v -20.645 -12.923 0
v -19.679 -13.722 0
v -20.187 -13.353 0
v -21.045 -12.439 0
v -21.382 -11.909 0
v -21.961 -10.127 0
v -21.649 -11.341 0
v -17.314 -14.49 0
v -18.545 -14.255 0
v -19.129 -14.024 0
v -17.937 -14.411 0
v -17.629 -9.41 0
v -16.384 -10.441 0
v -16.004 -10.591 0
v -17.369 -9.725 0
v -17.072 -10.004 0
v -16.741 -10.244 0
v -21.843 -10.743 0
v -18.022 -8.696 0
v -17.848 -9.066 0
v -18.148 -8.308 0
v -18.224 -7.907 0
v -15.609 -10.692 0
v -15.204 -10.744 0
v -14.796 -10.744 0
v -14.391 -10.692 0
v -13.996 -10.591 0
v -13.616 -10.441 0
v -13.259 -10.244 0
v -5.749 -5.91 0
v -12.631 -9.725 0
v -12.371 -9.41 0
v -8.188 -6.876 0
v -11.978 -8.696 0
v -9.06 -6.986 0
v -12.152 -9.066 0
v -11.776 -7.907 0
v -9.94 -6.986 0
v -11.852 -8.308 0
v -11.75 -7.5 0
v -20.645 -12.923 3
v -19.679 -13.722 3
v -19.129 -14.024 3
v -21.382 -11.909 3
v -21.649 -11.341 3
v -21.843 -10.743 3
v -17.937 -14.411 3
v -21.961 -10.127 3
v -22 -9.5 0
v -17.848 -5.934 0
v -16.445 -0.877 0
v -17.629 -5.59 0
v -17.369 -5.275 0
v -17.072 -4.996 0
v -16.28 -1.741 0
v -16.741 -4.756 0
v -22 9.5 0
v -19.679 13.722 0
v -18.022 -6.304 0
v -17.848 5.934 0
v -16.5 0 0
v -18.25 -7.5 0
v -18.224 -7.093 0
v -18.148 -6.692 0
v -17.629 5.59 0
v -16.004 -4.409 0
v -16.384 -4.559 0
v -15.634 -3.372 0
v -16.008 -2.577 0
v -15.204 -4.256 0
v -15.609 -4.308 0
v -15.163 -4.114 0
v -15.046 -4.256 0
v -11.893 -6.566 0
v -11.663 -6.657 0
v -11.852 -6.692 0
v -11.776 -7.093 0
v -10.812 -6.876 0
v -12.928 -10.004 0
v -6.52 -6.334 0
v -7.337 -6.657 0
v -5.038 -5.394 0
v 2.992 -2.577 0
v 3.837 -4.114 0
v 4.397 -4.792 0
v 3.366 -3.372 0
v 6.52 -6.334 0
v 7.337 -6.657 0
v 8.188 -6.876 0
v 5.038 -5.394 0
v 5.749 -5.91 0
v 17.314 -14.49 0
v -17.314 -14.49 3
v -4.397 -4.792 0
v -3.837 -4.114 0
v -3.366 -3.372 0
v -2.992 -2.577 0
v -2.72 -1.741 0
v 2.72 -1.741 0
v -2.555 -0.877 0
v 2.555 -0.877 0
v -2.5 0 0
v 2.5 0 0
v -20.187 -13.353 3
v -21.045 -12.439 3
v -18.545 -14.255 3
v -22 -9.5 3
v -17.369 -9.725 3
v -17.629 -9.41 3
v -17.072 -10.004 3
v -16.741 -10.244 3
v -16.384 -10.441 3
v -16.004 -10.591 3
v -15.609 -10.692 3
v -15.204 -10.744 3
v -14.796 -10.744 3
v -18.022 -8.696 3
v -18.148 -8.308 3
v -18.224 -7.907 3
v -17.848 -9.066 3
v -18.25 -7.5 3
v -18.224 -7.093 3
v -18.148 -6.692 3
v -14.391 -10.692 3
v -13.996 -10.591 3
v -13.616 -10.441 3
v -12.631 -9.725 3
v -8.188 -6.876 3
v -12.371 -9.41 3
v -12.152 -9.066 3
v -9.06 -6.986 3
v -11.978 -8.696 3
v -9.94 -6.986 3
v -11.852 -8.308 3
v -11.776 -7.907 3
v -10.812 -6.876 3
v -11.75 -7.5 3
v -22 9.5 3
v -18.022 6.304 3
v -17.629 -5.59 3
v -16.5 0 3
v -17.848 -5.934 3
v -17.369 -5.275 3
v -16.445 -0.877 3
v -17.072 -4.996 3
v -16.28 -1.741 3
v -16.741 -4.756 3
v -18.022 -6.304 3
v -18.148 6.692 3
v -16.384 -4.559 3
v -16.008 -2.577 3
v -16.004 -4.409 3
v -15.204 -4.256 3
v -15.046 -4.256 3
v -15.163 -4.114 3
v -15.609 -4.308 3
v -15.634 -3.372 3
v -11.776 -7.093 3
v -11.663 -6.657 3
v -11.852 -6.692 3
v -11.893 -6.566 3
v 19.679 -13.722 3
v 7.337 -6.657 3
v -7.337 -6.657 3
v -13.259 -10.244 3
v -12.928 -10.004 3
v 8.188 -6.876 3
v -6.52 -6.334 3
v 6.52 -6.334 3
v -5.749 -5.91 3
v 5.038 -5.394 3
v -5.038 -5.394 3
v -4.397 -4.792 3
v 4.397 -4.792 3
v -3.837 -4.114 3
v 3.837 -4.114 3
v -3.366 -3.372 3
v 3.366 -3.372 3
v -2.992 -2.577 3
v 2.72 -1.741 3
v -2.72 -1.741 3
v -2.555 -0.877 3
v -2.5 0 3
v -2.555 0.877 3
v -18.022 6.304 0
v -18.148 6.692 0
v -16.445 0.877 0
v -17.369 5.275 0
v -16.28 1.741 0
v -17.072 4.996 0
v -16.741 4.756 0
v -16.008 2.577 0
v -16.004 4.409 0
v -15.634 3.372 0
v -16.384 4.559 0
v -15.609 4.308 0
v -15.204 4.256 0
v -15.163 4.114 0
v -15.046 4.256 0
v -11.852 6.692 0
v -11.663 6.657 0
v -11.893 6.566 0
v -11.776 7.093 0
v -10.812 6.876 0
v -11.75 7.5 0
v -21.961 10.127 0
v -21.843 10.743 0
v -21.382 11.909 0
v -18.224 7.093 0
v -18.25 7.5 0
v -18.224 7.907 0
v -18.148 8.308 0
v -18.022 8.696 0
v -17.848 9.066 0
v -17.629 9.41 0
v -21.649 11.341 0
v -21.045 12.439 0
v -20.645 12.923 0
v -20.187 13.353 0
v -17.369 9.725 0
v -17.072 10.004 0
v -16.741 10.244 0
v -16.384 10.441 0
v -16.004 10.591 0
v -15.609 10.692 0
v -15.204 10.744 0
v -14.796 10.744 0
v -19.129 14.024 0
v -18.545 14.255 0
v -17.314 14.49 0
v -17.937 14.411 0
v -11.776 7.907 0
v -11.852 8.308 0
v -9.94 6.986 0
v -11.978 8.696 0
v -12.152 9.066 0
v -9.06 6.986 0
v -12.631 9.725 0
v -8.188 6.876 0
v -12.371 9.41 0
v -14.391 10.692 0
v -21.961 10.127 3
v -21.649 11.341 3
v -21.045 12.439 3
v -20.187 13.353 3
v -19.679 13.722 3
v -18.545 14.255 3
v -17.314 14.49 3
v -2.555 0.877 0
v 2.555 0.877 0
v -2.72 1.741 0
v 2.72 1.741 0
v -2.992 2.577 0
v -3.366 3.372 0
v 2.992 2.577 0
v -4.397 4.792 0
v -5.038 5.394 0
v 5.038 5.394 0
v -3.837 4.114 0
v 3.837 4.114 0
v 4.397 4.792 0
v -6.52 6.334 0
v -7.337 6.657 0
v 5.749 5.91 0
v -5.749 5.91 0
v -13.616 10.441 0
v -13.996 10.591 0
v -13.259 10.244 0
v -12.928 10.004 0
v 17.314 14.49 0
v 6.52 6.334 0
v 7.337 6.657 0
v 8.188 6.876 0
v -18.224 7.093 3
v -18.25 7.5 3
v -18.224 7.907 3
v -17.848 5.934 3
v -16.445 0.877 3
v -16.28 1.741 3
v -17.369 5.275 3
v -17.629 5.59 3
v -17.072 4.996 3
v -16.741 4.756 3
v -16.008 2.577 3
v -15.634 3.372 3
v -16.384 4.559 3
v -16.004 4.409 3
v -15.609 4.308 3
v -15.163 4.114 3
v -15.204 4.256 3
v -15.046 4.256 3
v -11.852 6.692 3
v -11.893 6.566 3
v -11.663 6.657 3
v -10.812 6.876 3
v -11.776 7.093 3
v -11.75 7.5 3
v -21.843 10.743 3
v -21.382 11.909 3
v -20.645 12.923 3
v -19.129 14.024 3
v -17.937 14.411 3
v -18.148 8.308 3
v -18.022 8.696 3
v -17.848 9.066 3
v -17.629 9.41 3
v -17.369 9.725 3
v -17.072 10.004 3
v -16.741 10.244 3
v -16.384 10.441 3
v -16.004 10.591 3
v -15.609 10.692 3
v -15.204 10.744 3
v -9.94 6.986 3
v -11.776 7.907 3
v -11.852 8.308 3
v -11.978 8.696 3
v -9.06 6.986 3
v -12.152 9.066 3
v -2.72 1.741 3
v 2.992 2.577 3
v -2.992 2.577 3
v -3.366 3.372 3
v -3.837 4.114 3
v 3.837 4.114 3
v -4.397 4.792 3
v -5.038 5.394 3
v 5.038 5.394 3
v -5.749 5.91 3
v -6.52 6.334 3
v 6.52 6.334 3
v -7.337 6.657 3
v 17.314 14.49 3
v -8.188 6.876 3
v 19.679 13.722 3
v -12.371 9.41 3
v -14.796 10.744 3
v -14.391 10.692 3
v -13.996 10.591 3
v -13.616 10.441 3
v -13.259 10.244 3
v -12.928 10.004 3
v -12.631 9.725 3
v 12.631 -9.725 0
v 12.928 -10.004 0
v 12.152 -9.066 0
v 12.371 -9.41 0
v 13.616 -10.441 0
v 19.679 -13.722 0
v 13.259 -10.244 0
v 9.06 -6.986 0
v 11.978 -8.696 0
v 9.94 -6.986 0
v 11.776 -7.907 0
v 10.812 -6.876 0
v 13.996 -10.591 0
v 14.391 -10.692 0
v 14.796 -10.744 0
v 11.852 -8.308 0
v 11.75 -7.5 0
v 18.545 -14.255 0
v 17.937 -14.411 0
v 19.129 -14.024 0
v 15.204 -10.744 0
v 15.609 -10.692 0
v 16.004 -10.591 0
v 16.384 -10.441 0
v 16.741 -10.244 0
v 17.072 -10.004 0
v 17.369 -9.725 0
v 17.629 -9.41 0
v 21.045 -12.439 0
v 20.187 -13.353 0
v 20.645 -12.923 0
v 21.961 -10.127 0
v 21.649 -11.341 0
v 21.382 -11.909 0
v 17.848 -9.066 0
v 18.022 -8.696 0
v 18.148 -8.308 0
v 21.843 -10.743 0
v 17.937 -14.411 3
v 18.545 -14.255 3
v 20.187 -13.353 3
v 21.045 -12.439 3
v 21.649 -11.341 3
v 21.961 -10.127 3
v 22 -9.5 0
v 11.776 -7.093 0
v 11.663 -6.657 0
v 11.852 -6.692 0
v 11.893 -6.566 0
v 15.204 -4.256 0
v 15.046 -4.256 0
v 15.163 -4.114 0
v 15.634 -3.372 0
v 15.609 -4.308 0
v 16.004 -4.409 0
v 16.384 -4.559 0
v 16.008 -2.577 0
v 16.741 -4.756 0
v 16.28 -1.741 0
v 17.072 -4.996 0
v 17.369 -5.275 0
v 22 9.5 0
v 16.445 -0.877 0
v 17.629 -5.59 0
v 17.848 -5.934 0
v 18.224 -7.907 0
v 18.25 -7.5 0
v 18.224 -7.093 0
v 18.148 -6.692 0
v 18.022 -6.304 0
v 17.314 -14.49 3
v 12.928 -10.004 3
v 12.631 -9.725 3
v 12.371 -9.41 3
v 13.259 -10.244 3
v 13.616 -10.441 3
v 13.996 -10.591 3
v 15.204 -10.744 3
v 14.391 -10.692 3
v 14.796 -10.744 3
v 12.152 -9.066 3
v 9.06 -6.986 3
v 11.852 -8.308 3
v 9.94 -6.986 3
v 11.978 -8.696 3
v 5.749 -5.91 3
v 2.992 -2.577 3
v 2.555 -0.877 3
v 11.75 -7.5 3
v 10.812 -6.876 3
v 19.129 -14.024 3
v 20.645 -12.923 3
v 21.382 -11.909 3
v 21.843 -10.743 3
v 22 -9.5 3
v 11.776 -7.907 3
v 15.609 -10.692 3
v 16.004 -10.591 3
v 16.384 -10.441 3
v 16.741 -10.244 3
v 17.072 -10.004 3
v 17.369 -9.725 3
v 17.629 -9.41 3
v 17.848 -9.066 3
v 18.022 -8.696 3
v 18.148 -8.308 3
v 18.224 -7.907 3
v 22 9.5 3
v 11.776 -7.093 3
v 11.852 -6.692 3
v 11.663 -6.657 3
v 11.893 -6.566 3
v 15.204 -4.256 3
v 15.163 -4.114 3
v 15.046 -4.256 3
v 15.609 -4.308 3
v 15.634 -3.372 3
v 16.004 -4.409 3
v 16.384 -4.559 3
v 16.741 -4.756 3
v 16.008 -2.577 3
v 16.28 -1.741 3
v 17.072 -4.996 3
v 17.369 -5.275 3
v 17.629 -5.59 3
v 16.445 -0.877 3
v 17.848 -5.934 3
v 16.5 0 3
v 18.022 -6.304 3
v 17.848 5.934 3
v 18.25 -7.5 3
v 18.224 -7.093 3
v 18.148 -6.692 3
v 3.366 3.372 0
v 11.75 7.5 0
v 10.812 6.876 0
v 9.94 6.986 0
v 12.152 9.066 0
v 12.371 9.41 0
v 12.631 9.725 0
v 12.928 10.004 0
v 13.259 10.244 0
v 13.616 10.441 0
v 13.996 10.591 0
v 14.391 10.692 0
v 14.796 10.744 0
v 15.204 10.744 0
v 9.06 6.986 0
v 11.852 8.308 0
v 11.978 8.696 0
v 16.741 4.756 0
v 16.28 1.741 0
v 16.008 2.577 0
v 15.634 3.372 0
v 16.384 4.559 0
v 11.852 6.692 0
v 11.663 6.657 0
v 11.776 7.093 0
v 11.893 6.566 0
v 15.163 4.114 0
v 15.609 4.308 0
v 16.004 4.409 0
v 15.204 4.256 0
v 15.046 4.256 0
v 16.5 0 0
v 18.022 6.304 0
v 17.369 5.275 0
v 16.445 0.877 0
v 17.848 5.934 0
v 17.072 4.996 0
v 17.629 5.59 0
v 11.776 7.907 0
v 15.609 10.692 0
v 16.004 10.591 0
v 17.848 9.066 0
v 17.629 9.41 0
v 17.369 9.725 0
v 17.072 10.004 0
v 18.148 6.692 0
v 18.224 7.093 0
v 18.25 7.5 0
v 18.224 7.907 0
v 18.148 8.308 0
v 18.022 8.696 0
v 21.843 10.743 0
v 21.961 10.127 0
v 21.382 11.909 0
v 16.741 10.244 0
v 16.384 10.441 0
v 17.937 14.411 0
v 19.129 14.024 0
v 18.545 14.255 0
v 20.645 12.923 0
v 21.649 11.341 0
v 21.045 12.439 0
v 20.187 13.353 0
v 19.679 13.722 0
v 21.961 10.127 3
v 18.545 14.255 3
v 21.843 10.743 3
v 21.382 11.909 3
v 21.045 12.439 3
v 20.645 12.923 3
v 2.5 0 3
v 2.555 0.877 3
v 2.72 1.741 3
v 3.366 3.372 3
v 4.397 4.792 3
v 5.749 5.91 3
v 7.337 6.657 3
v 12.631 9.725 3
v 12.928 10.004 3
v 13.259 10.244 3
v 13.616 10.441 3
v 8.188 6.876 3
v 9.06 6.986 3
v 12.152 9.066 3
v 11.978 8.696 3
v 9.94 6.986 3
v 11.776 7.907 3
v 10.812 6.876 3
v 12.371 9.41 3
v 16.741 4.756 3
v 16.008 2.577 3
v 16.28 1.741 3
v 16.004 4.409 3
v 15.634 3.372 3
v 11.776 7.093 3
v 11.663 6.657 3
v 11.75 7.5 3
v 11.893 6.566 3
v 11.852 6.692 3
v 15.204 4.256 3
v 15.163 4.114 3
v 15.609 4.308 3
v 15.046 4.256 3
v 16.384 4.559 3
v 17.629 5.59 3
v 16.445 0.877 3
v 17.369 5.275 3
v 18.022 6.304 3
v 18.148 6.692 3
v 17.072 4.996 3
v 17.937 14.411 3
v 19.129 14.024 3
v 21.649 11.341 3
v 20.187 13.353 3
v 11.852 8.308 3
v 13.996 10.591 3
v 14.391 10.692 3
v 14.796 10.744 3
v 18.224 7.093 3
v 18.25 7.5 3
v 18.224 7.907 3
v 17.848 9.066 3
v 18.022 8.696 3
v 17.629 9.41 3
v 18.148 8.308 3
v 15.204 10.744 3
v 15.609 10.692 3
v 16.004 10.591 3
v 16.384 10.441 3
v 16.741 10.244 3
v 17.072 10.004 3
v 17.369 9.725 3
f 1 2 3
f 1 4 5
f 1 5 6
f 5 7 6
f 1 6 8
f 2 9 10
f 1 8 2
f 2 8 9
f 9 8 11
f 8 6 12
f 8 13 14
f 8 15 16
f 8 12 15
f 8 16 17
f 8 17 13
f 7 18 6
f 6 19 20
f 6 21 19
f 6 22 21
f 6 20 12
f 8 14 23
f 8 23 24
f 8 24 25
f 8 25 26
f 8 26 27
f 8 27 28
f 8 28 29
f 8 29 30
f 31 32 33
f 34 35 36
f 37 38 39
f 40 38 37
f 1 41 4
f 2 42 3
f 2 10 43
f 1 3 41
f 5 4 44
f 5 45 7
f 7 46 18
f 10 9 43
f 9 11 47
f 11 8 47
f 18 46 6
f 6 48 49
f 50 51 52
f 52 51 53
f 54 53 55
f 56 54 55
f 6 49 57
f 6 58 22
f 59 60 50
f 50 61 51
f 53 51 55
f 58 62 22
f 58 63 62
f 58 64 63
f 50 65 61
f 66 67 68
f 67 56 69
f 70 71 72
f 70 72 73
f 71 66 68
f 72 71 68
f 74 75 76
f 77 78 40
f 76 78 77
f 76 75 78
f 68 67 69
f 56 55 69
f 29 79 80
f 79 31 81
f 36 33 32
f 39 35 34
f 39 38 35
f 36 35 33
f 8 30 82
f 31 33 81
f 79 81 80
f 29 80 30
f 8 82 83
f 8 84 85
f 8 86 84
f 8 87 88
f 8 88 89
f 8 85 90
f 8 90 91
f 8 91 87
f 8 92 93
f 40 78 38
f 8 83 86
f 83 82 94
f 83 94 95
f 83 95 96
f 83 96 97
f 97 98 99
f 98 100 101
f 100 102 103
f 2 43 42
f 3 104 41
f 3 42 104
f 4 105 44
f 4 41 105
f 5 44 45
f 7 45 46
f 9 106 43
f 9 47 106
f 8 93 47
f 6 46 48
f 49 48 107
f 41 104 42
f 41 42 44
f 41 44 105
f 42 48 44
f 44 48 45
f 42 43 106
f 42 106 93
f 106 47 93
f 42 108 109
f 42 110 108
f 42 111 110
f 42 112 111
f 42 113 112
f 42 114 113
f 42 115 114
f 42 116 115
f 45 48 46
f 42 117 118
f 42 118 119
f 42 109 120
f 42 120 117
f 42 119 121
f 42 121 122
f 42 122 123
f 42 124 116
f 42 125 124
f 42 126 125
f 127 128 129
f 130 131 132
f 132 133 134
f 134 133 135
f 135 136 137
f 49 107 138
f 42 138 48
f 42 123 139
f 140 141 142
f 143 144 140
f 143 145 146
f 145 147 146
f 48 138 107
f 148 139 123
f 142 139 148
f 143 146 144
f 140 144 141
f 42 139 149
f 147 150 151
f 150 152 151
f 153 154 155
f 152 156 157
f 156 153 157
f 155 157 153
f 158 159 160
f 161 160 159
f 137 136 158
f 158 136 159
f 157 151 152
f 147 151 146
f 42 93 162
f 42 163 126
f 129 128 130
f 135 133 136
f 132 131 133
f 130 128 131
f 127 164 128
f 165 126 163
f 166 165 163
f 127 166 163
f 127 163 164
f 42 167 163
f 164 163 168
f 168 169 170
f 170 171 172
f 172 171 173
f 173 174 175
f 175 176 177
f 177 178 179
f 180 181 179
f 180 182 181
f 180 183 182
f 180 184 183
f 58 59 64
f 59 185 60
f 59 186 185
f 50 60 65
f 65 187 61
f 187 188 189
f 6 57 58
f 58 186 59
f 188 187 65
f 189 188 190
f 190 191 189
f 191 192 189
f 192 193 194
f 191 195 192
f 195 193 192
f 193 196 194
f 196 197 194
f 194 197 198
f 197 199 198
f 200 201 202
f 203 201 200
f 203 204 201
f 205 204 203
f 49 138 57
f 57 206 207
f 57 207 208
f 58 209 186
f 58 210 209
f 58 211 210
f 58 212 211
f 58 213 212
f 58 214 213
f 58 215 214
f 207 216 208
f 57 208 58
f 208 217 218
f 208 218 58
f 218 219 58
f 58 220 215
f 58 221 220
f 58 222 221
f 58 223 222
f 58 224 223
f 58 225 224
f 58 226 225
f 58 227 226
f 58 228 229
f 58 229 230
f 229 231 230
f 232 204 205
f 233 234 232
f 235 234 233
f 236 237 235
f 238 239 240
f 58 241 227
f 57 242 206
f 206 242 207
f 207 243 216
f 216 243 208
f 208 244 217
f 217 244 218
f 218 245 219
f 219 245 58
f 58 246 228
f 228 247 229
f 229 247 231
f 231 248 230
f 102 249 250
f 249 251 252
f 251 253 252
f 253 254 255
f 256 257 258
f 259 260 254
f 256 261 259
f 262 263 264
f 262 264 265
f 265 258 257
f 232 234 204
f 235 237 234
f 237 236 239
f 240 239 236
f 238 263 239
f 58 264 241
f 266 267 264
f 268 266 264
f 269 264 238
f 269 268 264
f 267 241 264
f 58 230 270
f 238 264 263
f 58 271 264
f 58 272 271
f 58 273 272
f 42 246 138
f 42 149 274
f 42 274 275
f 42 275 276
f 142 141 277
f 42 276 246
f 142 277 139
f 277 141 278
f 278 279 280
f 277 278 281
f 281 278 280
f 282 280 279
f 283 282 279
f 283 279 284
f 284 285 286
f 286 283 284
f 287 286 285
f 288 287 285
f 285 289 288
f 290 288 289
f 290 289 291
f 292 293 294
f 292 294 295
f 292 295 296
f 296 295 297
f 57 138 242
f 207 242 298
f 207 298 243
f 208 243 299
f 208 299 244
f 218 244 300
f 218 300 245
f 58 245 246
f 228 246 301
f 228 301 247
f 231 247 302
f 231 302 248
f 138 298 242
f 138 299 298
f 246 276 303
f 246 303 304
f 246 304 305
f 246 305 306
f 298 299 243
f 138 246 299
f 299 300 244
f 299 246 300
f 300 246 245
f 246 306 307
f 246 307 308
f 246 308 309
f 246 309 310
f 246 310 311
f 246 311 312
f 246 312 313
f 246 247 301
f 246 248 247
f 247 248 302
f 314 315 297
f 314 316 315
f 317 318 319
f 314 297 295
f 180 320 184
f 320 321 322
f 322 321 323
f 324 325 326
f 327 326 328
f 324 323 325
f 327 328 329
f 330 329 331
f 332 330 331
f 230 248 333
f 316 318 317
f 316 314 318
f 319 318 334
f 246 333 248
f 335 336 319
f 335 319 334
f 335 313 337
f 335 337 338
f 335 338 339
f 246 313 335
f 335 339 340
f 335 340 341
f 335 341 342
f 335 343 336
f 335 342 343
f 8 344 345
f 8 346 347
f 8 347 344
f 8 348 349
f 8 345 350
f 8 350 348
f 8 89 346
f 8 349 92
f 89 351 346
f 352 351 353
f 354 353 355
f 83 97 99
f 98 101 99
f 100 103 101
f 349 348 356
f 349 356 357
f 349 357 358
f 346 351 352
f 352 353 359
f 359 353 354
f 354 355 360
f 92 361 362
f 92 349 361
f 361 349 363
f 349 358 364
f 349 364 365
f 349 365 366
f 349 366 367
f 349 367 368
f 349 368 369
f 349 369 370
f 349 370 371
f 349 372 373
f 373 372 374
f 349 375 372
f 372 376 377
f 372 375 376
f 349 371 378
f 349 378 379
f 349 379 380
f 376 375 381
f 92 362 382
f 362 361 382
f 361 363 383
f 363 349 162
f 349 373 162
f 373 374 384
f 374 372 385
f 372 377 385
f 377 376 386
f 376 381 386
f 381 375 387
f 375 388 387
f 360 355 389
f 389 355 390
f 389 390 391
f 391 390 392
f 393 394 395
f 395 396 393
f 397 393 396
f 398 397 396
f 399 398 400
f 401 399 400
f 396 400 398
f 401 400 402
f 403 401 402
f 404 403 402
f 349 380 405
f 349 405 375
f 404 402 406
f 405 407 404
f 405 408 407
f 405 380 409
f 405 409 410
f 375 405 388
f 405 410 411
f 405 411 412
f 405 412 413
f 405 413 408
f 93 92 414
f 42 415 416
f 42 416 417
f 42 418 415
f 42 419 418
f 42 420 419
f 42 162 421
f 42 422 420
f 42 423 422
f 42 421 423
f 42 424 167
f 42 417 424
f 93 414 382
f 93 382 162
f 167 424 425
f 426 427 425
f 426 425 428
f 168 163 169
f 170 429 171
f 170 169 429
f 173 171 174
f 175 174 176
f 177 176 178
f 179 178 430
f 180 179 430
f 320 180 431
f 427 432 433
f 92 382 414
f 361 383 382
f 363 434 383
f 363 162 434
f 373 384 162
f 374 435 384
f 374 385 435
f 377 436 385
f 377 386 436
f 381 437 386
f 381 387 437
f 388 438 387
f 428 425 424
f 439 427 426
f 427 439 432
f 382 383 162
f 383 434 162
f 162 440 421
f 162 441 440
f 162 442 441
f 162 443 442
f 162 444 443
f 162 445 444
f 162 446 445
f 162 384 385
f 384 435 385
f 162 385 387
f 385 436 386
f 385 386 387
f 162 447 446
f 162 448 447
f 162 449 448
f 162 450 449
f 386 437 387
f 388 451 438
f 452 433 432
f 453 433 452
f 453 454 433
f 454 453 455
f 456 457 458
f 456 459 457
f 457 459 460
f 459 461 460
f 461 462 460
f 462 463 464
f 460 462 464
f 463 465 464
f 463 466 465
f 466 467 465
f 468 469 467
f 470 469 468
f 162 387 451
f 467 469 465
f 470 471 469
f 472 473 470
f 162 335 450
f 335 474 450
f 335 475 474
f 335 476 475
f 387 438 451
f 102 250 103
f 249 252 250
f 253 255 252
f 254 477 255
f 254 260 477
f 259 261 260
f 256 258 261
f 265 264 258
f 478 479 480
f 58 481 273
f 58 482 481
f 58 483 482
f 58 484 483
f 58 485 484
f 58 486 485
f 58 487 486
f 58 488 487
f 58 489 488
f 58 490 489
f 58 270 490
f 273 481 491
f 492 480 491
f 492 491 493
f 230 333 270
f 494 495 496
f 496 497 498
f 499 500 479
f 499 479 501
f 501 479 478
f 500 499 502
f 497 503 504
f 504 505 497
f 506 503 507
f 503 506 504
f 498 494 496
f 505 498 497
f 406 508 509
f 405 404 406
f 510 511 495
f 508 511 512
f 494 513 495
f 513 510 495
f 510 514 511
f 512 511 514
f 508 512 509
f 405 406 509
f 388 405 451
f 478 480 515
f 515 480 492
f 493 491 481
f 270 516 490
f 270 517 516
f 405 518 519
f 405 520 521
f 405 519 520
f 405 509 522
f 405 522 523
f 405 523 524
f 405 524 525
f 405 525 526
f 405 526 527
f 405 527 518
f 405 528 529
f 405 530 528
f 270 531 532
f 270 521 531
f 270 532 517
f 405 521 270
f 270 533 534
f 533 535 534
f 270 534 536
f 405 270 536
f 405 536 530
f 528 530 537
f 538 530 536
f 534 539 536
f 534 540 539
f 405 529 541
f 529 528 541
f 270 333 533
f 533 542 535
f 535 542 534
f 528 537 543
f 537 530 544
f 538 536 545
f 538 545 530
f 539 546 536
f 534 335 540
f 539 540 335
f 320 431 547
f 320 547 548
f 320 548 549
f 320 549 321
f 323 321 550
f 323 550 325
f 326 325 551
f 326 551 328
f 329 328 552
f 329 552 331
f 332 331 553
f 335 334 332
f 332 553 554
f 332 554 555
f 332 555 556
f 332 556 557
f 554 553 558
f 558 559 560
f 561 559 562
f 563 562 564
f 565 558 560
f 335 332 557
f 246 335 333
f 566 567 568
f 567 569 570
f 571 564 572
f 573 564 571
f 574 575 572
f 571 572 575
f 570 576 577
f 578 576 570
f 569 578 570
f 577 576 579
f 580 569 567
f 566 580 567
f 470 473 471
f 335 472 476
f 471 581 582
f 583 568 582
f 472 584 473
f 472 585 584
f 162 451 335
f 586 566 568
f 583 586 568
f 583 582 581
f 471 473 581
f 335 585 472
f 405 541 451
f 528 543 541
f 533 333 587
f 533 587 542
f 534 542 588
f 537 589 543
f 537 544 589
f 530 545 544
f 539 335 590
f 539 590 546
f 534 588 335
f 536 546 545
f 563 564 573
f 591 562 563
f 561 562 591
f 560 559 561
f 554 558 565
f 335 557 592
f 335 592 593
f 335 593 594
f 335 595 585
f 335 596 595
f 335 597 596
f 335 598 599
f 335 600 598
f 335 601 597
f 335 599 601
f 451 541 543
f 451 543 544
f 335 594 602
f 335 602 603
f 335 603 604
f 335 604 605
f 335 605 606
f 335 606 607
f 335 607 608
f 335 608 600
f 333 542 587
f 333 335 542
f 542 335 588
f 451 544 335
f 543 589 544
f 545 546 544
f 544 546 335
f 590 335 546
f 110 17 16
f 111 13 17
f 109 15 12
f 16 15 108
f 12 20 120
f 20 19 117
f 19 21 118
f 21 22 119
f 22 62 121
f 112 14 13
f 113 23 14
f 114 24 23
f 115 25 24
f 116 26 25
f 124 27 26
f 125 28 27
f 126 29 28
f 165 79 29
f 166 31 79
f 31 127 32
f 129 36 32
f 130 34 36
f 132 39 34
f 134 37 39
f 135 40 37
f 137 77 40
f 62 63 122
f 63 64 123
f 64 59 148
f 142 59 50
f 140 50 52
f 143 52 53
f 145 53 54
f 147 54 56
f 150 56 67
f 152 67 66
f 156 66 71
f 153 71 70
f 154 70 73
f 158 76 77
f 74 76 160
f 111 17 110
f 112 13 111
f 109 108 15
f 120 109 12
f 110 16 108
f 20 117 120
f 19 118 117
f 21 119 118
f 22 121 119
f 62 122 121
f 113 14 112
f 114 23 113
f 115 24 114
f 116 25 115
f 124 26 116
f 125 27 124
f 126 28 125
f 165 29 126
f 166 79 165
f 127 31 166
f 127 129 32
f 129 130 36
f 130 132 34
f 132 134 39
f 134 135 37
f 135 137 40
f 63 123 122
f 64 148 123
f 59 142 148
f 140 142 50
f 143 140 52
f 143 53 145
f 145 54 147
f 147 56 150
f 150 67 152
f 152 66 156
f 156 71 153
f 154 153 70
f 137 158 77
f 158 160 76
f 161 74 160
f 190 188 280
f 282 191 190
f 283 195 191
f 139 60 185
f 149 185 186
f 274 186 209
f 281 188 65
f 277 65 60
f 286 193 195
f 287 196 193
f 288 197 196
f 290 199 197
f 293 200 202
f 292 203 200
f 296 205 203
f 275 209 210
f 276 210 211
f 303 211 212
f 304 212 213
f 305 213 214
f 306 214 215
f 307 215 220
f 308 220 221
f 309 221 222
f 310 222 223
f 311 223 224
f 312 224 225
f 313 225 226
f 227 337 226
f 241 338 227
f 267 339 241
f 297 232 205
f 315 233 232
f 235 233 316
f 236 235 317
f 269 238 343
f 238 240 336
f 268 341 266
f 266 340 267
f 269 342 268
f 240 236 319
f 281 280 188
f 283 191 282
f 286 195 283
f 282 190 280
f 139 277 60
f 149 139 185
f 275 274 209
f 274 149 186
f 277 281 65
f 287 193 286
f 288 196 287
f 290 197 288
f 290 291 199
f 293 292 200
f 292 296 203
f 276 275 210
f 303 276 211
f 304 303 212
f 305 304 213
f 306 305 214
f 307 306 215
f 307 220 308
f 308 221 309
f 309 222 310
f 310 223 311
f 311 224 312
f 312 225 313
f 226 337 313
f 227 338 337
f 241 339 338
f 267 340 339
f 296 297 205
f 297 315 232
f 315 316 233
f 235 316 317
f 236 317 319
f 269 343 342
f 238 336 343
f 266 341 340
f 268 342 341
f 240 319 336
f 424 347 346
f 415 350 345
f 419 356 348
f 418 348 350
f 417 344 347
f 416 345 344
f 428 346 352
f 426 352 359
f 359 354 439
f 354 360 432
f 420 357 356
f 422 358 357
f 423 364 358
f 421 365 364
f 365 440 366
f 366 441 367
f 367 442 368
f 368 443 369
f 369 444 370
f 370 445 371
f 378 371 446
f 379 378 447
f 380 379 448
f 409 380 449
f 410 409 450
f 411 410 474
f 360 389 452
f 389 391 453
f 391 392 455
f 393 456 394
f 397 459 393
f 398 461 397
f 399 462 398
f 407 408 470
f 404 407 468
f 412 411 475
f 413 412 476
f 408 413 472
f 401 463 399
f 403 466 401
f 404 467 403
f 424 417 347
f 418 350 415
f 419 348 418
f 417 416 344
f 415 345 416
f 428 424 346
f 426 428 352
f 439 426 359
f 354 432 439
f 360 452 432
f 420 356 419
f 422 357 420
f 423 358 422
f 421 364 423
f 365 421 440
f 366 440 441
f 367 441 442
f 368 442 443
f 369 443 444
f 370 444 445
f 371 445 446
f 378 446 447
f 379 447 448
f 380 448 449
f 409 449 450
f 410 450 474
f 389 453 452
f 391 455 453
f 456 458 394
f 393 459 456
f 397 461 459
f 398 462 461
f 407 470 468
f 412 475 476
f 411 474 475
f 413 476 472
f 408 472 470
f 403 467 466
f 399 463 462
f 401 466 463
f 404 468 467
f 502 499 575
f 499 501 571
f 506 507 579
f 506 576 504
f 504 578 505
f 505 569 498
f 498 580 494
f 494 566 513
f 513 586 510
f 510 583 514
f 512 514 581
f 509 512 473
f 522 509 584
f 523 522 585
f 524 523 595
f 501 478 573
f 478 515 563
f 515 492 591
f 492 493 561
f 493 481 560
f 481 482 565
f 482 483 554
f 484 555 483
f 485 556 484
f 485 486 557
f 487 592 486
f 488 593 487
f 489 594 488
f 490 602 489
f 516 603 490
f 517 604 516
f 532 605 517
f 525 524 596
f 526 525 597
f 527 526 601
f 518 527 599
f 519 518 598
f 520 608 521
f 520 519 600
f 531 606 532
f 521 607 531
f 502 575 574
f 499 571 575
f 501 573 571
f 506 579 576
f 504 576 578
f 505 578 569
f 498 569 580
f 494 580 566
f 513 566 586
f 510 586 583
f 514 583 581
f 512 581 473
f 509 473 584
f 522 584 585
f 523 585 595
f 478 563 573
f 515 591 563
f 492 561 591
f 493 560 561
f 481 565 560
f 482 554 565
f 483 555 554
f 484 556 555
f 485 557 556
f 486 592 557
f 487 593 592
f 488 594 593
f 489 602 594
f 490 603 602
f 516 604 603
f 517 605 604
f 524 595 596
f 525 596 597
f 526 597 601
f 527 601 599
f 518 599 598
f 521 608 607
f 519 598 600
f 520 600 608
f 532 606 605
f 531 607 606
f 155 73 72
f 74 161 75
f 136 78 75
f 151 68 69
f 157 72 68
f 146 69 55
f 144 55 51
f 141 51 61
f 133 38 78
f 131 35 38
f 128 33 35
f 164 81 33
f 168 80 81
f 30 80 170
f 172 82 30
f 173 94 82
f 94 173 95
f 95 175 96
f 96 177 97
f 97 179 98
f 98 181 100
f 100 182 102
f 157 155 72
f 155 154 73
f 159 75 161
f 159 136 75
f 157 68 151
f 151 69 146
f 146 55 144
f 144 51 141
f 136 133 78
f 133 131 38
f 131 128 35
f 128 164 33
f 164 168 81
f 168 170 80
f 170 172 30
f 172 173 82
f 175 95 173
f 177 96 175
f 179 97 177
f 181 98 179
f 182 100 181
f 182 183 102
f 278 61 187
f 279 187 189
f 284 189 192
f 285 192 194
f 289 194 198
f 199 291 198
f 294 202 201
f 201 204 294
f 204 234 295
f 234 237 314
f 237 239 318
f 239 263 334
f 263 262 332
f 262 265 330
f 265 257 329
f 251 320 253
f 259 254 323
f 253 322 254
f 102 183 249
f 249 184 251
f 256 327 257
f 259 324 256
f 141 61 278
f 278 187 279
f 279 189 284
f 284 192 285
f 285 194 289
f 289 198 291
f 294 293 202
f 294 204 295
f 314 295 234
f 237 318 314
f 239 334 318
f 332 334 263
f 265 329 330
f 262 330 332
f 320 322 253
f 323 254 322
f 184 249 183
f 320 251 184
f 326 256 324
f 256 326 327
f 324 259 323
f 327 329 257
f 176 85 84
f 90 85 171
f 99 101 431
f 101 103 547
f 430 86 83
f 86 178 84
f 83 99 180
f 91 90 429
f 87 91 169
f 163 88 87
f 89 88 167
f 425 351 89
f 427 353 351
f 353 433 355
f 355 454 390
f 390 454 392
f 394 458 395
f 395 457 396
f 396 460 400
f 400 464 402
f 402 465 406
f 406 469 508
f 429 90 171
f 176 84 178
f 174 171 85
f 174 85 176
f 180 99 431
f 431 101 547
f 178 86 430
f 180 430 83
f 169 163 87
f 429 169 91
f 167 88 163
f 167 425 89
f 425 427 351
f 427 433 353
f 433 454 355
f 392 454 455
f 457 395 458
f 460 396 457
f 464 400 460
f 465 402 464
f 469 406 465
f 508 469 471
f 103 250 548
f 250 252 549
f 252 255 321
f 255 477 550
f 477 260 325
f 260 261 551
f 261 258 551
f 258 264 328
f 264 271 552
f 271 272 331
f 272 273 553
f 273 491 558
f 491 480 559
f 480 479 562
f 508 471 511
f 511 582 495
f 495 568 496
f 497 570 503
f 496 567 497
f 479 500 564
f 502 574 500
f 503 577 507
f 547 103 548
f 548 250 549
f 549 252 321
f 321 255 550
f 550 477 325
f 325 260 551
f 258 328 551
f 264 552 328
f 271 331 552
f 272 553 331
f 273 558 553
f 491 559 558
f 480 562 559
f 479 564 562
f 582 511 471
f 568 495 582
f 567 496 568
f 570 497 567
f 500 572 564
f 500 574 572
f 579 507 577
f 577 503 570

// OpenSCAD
$fn = 50;

difference() {
	union() {
		hull() {
			translate(v = [-17.0, 9.5, 0]) {
				cylinder(h = 3, r = 5);
			}
			translate(v = [17.0, 9.5, 0]) {
				cylinder(h = 3, r = 5);
			}
			translate(v = [-17.0, -9.5, 0]) {
				cylinder(h = 3, r = 5);
			}
			translate(v = [17.0, -9.5, 0]) {
				cylinder(h = 3, r = 5);
			}
		}
	}
	union() {
		translate(v = [-15.0, -7.5, -100.0]) {
			cylinder(h = 200, r = 3.25);
		}
		translate(v = [-15.0, 7.5, -100.0]) {
			cylinder(h = 200, r = 3.25);
		}
		translate(v = [15.0, -7.5, -100.0]) {
			cylinder(h = 200, r = 3.25);
		}
		translate(v = [15.0, 7.5, -100.0]) {
			cylinder(h = 200, r = 3.25);
		}
		translate(v = [-15.0, -7.5, -100.0]) {
			cylinder(h = 200, r = 1.8);
		}
		translate(v = [-15.0, 7.5, -100.0]) {
			cylinder(h = 200, r = 1.8);
		}
		translate(v = [15.0, -7.5, -100.0]) {
			cylinder(h = 200, r = 1.8);
		}
		translate(v = [15.0, 7.5, -100.0]) {
			cylinder(h = 200, r = 1.8);
		}
		translate(v = [-9.5, 0, 0.0]) {
			cylinder(h = 3, r = 7.0);
		}
		translate(v = [9.5, 0, 0.0]) {
			cylinder(h = 3, r = 7.0);
		}
	}
}
